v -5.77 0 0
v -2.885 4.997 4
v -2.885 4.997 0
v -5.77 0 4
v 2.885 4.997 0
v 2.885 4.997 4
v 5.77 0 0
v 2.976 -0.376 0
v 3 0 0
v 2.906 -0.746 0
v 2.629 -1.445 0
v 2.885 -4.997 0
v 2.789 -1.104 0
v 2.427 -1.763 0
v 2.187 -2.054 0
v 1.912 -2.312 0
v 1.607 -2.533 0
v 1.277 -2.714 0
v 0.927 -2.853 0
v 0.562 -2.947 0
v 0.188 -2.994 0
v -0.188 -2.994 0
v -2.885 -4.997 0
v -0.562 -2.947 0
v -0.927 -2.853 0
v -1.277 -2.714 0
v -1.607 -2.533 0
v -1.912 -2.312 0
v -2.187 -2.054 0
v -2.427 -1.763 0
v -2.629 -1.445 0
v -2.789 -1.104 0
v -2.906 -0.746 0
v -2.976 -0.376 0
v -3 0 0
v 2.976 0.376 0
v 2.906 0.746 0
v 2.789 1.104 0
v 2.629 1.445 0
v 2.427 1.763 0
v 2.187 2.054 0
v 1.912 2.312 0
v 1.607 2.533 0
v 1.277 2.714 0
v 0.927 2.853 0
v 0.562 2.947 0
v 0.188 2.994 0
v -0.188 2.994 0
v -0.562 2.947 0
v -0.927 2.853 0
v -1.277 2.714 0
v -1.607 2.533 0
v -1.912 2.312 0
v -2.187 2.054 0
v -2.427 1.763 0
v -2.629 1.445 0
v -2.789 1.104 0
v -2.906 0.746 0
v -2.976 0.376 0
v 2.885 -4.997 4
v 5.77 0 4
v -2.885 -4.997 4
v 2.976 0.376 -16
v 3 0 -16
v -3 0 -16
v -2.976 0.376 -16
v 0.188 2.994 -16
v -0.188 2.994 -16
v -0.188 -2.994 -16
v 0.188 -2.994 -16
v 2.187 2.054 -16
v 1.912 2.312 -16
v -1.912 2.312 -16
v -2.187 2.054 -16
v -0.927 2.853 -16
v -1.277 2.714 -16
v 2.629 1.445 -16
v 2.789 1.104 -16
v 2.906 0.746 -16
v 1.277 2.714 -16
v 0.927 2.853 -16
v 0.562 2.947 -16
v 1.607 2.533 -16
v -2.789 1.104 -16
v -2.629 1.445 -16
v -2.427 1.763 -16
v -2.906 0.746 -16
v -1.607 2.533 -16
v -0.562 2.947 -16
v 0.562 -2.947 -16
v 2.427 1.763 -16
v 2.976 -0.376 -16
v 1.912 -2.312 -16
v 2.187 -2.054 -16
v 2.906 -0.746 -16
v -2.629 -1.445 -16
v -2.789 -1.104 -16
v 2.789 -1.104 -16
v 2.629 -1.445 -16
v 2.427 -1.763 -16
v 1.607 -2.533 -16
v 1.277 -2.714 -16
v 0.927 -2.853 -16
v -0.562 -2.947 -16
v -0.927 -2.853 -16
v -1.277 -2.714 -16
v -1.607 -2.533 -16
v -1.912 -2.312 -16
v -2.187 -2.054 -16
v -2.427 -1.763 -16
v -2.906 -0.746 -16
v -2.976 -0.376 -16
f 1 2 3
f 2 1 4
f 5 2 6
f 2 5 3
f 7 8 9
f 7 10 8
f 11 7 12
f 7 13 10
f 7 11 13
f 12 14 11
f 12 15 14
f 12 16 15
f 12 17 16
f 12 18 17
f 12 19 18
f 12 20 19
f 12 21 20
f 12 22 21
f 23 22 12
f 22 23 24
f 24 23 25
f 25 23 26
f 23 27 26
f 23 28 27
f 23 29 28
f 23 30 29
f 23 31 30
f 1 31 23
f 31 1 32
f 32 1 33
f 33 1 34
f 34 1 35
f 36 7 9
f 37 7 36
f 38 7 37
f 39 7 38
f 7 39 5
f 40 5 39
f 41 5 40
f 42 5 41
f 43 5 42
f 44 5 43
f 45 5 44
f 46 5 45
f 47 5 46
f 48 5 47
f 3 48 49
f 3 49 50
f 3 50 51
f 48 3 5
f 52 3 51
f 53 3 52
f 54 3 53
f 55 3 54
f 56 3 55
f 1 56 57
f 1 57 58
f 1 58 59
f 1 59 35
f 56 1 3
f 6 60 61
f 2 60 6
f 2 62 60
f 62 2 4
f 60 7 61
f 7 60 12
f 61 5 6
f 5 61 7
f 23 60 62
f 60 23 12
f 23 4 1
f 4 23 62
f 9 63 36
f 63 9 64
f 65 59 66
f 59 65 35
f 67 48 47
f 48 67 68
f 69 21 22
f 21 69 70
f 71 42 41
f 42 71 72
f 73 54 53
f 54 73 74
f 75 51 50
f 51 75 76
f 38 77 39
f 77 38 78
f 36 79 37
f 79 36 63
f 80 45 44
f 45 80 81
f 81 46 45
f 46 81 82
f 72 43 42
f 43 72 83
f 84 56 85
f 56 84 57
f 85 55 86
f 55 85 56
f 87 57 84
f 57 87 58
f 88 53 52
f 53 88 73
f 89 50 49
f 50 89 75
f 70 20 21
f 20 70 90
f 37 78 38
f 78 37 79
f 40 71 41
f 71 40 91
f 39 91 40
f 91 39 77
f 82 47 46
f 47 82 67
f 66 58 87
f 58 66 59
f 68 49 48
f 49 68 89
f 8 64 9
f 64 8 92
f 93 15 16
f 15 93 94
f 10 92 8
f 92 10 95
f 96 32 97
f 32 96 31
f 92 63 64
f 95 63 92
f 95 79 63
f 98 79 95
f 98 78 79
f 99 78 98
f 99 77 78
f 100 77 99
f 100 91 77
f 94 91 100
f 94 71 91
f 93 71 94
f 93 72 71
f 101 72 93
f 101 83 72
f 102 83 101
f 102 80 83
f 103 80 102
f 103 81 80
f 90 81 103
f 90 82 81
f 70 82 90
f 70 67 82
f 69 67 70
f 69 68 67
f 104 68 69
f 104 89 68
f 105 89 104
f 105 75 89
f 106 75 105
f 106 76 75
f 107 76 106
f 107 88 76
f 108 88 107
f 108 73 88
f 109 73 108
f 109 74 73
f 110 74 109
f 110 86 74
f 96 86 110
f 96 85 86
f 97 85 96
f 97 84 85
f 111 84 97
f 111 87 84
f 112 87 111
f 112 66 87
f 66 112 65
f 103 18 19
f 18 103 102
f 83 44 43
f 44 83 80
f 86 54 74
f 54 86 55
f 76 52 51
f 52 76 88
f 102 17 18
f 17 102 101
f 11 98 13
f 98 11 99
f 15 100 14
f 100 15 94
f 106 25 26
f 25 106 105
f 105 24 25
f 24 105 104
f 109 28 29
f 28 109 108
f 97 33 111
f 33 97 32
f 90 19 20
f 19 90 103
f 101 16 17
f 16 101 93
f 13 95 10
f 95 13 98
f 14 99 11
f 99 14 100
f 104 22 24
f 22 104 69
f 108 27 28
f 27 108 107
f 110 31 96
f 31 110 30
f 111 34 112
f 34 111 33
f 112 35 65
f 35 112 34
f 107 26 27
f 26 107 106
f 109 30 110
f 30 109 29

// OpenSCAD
$fn = 50;


difference() {
	union() {
		translate(v = [0, 0, 0]) {
			rotate(a = [0, 0, 0]) {
				translate(v = [0, 0, 0]) {
					rotate(a = [0, 0, 0]) {
						linear_extrude(height = 4) {
							polygon(points = [[5.7700000000, 0.0000000000], [2.8850000000, 4.9969665798], [-2.8850000000, 4.9969665798], [-5.7700000000, 0.0000000000], [-2.8850000000, -4.9969665798], [2.8850000000, -4.9969665798]]);
						}
					}
				}
			}
		}
		translate(v = [0, 0, -16]) {
			rotate(a = [0, 0, 0]) {
				cylinder(h = 16, r = 3.0000000000);
			}
		}
	}
	union();
}
